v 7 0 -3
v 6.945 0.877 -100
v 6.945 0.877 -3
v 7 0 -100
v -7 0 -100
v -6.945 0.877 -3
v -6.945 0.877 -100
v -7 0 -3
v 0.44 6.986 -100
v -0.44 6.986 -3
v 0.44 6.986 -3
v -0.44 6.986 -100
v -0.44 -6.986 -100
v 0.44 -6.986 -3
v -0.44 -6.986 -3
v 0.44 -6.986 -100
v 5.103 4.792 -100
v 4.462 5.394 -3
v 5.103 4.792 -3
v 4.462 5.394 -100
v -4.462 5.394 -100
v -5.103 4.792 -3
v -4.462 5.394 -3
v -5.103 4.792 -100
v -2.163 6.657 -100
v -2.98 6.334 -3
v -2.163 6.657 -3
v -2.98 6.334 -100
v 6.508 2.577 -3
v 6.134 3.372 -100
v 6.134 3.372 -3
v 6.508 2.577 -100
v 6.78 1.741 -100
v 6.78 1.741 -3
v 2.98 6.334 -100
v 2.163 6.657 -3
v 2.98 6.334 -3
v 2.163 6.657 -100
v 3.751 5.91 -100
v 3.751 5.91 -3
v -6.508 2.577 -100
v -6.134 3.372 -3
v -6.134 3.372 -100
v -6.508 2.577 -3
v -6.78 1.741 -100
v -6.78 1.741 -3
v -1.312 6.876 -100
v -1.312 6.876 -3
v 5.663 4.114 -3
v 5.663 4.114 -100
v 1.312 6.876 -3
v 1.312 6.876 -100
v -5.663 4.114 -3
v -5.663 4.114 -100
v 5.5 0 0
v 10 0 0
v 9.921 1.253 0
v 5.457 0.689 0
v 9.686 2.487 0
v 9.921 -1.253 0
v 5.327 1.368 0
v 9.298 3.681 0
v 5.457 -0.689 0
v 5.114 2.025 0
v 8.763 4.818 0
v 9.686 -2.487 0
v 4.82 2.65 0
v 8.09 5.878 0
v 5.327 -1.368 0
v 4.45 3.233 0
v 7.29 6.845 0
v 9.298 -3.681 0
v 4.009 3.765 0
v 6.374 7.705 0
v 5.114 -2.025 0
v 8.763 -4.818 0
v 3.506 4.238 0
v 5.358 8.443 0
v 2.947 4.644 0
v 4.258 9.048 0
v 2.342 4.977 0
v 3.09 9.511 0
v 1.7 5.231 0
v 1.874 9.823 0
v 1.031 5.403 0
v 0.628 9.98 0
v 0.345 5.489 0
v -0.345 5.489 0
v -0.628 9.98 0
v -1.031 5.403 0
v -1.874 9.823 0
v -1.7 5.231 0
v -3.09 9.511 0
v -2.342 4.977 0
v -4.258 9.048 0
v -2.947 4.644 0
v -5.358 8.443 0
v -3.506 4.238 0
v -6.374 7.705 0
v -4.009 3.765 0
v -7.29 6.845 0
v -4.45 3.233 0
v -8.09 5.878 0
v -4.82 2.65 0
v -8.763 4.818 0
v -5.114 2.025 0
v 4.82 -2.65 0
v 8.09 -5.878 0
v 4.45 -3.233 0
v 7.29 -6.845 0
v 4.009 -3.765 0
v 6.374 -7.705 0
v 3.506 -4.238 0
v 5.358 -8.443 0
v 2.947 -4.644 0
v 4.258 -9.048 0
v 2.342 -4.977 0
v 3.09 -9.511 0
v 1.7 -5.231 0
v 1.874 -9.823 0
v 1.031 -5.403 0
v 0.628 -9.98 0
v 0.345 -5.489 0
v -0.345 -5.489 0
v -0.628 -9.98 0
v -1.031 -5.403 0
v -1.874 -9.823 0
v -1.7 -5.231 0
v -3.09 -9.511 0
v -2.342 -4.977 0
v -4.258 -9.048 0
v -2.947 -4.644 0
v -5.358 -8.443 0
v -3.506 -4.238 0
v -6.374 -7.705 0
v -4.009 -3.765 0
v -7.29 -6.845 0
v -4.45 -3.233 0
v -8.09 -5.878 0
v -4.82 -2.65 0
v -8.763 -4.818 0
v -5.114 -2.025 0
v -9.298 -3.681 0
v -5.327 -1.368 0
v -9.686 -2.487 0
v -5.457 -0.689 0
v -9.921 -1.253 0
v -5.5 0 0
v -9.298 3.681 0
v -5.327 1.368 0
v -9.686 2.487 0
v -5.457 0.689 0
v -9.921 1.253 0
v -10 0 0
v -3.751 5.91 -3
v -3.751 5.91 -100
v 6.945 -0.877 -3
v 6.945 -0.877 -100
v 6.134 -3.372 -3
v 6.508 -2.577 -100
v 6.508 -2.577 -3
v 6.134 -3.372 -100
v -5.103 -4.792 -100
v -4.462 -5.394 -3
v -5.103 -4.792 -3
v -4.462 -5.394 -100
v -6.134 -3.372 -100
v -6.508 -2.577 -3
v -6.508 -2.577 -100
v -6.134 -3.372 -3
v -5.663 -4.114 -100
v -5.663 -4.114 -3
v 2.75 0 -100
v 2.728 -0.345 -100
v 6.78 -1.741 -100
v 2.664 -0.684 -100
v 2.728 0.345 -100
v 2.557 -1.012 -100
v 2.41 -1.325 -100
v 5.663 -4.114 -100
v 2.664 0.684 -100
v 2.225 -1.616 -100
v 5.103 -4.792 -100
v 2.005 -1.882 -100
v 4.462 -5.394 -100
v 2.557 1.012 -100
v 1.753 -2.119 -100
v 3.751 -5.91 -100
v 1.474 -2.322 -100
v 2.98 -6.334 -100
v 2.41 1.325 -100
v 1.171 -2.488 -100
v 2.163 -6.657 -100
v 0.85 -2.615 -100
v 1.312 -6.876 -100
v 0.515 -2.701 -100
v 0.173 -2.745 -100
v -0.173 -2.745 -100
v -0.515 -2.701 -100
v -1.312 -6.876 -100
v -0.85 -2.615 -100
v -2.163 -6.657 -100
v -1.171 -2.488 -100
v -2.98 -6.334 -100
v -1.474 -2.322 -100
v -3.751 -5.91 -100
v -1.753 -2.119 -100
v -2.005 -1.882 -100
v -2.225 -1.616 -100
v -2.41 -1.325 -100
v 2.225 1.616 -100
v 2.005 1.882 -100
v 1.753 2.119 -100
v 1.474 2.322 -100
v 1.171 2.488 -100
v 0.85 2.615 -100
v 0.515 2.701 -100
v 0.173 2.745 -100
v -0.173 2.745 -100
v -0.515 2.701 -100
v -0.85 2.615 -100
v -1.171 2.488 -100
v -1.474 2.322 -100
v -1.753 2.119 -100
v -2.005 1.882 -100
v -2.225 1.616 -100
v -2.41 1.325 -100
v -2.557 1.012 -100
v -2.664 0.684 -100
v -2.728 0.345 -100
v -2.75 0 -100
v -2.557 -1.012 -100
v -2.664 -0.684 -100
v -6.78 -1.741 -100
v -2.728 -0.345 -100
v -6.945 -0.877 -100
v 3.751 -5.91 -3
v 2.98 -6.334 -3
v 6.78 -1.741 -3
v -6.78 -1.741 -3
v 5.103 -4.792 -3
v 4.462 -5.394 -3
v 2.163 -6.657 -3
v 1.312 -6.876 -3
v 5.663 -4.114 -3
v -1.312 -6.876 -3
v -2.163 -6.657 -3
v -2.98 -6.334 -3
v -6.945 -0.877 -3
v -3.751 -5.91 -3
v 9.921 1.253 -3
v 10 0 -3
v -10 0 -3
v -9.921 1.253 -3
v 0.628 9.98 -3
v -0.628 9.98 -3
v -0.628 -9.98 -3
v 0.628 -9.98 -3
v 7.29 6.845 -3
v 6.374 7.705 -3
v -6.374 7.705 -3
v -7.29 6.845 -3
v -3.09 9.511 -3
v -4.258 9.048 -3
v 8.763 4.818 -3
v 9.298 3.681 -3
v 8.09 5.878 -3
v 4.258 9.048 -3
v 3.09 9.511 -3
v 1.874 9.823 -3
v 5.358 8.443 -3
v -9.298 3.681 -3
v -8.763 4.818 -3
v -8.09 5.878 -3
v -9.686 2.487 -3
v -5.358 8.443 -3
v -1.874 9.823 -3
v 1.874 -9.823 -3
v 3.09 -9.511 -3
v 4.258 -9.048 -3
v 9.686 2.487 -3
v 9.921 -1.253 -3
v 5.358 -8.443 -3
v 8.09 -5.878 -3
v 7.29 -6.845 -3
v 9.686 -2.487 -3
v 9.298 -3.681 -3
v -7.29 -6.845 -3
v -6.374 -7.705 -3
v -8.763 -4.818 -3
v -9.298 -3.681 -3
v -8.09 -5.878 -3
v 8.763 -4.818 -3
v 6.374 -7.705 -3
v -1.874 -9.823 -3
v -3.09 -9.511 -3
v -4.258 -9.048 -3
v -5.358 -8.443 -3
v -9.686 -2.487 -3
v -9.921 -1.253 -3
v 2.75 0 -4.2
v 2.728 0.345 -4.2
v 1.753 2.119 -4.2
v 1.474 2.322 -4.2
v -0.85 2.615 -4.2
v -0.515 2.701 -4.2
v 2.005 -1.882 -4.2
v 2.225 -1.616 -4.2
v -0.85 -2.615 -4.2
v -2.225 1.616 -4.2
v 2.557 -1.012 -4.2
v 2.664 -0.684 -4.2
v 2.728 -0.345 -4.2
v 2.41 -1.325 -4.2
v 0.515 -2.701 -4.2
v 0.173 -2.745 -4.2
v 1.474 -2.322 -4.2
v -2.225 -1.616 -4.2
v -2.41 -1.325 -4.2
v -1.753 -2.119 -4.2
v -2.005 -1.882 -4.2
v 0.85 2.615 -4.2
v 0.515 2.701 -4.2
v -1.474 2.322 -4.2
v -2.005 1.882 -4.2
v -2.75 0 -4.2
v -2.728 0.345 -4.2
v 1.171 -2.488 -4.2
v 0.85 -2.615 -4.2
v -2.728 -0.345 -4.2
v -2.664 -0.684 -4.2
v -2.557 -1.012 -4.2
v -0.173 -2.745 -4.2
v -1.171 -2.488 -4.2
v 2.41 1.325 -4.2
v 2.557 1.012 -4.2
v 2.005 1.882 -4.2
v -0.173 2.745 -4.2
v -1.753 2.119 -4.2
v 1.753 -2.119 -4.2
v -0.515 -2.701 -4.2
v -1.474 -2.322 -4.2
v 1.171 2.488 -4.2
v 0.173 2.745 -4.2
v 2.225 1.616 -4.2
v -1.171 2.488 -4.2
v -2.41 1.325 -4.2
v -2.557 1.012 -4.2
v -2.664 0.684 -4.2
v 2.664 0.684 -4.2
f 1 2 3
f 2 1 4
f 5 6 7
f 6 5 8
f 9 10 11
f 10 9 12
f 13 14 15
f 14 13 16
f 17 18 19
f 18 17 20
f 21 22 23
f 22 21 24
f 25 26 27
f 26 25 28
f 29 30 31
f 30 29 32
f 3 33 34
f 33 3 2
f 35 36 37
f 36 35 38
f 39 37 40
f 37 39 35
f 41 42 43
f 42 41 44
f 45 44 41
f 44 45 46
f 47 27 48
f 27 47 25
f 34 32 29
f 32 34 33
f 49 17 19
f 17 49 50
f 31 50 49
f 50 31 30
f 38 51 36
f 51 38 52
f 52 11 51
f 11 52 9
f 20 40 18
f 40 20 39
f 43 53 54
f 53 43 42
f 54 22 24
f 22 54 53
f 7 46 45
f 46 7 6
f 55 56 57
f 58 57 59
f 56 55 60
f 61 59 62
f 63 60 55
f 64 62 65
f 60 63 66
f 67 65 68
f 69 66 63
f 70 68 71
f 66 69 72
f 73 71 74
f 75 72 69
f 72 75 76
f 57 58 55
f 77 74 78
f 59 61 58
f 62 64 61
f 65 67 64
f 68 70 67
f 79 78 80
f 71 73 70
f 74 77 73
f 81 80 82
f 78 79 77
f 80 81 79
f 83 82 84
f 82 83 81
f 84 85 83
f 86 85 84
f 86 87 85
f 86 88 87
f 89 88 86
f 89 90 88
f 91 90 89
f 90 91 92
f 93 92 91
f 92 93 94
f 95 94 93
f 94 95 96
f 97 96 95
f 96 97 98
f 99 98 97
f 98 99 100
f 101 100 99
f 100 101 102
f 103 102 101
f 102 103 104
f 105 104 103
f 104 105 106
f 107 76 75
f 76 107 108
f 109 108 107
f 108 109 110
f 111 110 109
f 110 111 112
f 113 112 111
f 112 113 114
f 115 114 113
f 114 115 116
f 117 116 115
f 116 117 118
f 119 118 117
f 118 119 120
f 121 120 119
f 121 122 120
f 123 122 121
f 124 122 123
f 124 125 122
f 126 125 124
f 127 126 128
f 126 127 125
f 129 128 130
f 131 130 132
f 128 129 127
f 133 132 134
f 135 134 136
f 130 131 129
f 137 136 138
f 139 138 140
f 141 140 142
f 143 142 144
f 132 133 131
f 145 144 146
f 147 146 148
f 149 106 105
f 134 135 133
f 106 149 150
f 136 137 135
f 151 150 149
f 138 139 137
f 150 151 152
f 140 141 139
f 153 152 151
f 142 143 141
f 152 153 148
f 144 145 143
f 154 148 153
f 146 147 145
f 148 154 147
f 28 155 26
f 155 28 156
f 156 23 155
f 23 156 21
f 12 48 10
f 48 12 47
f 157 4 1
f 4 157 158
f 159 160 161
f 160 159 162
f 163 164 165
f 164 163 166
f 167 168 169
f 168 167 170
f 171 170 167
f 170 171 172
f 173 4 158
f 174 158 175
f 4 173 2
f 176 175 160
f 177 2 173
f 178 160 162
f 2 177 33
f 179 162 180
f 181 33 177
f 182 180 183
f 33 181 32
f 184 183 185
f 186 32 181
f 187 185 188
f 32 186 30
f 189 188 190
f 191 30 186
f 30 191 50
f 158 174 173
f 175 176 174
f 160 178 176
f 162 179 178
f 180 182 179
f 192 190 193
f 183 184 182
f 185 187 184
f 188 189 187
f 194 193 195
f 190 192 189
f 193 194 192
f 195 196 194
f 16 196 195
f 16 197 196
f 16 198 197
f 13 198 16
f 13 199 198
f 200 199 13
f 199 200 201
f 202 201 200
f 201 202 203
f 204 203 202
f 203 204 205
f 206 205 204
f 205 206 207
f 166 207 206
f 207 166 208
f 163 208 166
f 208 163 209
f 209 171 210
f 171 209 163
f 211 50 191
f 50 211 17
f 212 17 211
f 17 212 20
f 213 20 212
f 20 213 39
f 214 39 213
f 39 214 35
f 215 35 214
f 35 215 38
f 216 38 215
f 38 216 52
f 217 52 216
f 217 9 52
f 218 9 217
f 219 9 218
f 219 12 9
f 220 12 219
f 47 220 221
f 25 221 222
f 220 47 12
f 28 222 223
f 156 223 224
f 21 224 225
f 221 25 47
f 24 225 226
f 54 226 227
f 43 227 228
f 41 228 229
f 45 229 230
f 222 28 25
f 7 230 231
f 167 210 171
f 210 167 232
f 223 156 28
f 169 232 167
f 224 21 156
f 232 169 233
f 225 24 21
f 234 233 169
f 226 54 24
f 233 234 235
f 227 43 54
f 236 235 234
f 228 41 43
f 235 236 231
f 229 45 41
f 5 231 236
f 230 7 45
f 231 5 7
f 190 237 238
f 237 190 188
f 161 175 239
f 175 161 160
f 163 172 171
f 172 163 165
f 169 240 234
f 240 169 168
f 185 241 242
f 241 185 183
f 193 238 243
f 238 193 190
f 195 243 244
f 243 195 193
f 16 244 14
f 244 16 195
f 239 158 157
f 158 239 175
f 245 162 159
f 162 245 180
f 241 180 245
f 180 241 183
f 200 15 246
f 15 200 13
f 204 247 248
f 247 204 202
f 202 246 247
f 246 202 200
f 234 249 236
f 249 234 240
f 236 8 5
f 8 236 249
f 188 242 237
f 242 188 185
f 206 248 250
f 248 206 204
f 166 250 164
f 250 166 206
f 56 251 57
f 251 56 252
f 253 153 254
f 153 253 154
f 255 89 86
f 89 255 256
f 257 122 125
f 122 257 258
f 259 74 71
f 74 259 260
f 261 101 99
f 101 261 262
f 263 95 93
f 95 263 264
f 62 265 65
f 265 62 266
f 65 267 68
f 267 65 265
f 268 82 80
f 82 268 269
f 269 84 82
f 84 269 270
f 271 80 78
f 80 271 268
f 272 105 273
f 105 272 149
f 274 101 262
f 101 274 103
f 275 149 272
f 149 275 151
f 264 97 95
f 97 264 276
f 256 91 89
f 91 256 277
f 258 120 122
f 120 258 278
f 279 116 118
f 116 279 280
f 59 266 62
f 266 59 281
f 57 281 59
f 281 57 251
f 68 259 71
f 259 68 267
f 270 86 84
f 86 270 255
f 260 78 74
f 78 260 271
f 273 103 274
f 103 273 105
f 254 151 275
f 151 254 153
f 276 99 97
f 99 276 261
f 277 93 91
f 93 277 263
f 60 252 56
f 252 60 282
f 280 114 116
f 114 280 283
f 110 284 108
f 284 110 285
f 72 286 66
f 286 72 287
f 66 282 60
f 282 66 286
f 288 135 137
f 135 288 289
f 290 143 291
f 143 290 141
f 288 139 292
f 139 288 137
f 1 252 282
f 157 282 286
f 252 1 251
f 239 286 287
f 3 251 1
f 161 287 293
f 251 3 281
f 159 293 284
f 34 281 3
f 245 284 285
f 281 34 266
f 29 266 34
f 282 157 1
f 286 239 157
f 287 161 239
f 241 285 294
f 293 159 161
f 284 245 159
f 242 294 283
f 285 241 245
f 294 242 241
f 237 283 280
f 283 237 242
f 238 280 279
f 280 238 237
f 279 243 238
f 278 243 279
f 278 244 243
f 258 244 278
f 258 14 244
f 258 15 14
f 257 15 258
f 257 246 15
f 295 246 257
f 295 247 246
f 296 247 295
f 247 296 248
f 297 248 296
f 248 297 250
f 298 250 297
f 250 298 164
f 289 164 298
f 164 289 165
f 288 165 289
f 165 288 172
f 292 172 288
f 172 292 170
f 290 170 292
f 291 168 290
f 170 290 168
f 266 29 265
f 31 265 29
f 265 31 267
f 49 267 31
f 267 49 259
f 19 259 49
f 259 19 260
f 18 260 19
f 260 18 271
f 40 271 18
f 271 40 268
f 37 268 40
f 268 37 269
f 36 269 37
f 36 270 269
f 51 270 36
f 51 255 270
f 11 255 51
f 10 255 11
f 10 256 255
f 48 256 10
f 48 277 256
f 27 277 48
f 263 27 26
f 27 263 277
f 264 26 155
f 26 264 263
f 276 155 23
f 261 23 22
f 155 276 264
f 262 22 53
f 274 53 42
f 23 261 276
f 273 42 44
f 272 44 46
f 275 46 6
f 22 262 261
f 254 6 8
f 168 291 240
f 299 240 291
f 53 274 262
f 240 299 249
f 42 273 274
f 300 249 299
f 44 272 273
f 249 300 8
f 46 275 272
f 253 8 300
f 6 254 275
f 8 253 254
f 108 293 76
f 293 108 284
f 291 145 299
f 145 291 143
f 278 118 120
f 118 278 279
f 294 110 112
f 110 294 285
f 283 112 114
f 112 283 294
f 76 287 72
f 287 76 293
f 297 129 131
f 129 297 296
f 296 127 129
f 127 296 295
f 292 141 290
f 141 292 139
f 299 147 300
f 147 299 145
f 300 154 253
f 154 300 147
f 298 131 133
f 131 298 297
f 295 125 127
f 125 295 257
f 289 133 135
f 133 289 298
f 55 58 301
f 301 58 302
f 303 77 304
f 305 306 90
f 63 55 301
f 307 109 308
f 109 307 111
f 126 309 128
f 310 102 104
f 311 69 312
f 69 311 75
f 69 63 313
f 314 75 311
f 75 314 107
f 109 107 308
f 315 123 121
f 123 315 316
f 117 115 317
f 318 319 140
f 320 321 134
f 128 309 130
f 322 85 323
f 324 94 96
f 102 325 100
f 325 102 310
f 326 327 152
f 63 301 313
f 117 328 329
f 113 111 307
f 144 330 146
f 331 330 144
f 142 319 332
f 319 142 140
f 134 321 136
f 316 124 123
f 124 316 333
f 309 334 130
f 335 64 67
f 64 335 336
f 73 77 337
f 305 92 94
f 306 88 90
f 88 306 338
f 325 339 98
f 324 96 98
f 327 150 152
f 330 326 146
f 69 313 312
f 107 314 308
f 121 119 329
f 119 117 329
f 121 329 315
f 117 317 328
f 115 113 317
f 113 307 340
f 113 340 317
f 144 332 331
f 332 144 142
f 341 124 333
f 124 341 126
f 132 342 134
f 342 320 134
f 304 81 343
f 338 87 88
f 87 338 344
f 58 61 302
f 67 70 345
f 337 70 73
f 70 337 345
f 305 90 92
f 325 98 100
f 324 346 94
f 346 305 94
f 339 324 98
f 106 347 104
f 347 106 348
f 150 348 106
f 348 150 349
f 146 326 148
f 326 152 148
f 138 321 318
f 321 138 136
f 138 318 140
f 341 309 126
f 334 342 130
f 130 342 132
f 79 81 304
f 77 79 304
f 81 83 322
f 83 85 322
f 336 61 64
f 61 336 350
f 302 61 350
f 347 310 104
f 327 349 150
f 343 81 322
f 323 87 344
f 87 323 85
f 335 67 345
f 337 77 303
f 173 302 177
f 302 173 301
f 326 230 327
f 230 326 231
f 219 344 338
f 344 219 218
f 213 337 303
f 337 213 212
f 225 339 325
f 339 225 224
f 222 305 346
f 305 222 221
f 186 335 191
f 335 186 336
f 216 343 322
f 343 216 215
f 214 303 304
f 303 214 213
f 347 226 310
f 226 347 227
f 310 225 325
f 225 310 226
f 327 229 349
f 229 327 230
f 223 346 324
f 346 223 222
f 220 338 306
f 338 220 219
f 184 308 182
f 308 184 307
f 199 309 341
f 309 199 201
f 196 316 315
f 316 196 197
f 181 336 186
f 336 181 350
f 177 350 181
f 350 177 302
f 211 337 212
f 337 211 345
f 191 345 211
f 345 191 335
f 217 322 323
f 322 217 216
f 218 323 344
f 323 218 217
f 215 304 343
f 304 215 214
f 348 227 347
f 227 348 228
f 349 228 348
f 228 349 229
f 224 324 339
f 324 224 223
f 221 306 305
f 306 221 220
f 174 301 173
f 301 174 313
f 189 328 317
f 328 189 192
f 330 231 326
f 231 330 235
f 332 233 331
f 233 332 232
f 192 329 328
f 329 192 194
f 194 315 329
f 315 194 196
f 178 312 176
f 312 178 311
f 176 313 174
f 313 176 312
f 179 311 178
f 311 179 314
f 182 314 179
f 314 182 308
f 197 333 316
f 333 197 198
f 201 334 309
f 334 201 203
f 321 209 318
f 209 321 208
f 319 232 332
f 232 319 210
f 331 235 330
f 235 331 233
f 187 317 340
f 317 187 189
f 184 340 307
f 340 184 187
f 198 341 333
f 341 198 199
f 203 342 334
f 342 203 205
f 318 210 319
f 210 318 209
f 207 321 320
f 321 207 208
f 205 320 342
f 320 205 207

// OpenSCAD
$fn = 50;


difference() {
	union() {
		translate(v = [0, 0, -100.0000000000]) {
			cylinder(h = 100, r = 7.0000000000);
		}
		translate(v = [0, 0, -3.0000000000]) {
			cylinder(h = 3, r = 10.0000000000);
		}
	}
	union() {
		translate(v = [0, 0, 0]) {
			rotate(a = [0, 0, 0]) {
				difference() {
					union() {
						#translate(v = [0, 0, -100.0000000000]) {
							cylinder(h = 100, r = 2.2500000000);
						}
						#translate(v = [0, 0, -4.2000000000]) {
							cylinder(h = 4.2000000000, r1 = 2.7500000000, r2 = 5.5000000000);
						}
						#translate(v = [0, 0, -100.0000000000]) {
							cylinder(h = 100, r = 2.7500000000);
						}
						#translate(v = [0, 0, -100.0000000000]) {
							cylinder(h = 100, r = 2.2500000000);
						}
					}
					union();
				}
			}
		}
	}
}
